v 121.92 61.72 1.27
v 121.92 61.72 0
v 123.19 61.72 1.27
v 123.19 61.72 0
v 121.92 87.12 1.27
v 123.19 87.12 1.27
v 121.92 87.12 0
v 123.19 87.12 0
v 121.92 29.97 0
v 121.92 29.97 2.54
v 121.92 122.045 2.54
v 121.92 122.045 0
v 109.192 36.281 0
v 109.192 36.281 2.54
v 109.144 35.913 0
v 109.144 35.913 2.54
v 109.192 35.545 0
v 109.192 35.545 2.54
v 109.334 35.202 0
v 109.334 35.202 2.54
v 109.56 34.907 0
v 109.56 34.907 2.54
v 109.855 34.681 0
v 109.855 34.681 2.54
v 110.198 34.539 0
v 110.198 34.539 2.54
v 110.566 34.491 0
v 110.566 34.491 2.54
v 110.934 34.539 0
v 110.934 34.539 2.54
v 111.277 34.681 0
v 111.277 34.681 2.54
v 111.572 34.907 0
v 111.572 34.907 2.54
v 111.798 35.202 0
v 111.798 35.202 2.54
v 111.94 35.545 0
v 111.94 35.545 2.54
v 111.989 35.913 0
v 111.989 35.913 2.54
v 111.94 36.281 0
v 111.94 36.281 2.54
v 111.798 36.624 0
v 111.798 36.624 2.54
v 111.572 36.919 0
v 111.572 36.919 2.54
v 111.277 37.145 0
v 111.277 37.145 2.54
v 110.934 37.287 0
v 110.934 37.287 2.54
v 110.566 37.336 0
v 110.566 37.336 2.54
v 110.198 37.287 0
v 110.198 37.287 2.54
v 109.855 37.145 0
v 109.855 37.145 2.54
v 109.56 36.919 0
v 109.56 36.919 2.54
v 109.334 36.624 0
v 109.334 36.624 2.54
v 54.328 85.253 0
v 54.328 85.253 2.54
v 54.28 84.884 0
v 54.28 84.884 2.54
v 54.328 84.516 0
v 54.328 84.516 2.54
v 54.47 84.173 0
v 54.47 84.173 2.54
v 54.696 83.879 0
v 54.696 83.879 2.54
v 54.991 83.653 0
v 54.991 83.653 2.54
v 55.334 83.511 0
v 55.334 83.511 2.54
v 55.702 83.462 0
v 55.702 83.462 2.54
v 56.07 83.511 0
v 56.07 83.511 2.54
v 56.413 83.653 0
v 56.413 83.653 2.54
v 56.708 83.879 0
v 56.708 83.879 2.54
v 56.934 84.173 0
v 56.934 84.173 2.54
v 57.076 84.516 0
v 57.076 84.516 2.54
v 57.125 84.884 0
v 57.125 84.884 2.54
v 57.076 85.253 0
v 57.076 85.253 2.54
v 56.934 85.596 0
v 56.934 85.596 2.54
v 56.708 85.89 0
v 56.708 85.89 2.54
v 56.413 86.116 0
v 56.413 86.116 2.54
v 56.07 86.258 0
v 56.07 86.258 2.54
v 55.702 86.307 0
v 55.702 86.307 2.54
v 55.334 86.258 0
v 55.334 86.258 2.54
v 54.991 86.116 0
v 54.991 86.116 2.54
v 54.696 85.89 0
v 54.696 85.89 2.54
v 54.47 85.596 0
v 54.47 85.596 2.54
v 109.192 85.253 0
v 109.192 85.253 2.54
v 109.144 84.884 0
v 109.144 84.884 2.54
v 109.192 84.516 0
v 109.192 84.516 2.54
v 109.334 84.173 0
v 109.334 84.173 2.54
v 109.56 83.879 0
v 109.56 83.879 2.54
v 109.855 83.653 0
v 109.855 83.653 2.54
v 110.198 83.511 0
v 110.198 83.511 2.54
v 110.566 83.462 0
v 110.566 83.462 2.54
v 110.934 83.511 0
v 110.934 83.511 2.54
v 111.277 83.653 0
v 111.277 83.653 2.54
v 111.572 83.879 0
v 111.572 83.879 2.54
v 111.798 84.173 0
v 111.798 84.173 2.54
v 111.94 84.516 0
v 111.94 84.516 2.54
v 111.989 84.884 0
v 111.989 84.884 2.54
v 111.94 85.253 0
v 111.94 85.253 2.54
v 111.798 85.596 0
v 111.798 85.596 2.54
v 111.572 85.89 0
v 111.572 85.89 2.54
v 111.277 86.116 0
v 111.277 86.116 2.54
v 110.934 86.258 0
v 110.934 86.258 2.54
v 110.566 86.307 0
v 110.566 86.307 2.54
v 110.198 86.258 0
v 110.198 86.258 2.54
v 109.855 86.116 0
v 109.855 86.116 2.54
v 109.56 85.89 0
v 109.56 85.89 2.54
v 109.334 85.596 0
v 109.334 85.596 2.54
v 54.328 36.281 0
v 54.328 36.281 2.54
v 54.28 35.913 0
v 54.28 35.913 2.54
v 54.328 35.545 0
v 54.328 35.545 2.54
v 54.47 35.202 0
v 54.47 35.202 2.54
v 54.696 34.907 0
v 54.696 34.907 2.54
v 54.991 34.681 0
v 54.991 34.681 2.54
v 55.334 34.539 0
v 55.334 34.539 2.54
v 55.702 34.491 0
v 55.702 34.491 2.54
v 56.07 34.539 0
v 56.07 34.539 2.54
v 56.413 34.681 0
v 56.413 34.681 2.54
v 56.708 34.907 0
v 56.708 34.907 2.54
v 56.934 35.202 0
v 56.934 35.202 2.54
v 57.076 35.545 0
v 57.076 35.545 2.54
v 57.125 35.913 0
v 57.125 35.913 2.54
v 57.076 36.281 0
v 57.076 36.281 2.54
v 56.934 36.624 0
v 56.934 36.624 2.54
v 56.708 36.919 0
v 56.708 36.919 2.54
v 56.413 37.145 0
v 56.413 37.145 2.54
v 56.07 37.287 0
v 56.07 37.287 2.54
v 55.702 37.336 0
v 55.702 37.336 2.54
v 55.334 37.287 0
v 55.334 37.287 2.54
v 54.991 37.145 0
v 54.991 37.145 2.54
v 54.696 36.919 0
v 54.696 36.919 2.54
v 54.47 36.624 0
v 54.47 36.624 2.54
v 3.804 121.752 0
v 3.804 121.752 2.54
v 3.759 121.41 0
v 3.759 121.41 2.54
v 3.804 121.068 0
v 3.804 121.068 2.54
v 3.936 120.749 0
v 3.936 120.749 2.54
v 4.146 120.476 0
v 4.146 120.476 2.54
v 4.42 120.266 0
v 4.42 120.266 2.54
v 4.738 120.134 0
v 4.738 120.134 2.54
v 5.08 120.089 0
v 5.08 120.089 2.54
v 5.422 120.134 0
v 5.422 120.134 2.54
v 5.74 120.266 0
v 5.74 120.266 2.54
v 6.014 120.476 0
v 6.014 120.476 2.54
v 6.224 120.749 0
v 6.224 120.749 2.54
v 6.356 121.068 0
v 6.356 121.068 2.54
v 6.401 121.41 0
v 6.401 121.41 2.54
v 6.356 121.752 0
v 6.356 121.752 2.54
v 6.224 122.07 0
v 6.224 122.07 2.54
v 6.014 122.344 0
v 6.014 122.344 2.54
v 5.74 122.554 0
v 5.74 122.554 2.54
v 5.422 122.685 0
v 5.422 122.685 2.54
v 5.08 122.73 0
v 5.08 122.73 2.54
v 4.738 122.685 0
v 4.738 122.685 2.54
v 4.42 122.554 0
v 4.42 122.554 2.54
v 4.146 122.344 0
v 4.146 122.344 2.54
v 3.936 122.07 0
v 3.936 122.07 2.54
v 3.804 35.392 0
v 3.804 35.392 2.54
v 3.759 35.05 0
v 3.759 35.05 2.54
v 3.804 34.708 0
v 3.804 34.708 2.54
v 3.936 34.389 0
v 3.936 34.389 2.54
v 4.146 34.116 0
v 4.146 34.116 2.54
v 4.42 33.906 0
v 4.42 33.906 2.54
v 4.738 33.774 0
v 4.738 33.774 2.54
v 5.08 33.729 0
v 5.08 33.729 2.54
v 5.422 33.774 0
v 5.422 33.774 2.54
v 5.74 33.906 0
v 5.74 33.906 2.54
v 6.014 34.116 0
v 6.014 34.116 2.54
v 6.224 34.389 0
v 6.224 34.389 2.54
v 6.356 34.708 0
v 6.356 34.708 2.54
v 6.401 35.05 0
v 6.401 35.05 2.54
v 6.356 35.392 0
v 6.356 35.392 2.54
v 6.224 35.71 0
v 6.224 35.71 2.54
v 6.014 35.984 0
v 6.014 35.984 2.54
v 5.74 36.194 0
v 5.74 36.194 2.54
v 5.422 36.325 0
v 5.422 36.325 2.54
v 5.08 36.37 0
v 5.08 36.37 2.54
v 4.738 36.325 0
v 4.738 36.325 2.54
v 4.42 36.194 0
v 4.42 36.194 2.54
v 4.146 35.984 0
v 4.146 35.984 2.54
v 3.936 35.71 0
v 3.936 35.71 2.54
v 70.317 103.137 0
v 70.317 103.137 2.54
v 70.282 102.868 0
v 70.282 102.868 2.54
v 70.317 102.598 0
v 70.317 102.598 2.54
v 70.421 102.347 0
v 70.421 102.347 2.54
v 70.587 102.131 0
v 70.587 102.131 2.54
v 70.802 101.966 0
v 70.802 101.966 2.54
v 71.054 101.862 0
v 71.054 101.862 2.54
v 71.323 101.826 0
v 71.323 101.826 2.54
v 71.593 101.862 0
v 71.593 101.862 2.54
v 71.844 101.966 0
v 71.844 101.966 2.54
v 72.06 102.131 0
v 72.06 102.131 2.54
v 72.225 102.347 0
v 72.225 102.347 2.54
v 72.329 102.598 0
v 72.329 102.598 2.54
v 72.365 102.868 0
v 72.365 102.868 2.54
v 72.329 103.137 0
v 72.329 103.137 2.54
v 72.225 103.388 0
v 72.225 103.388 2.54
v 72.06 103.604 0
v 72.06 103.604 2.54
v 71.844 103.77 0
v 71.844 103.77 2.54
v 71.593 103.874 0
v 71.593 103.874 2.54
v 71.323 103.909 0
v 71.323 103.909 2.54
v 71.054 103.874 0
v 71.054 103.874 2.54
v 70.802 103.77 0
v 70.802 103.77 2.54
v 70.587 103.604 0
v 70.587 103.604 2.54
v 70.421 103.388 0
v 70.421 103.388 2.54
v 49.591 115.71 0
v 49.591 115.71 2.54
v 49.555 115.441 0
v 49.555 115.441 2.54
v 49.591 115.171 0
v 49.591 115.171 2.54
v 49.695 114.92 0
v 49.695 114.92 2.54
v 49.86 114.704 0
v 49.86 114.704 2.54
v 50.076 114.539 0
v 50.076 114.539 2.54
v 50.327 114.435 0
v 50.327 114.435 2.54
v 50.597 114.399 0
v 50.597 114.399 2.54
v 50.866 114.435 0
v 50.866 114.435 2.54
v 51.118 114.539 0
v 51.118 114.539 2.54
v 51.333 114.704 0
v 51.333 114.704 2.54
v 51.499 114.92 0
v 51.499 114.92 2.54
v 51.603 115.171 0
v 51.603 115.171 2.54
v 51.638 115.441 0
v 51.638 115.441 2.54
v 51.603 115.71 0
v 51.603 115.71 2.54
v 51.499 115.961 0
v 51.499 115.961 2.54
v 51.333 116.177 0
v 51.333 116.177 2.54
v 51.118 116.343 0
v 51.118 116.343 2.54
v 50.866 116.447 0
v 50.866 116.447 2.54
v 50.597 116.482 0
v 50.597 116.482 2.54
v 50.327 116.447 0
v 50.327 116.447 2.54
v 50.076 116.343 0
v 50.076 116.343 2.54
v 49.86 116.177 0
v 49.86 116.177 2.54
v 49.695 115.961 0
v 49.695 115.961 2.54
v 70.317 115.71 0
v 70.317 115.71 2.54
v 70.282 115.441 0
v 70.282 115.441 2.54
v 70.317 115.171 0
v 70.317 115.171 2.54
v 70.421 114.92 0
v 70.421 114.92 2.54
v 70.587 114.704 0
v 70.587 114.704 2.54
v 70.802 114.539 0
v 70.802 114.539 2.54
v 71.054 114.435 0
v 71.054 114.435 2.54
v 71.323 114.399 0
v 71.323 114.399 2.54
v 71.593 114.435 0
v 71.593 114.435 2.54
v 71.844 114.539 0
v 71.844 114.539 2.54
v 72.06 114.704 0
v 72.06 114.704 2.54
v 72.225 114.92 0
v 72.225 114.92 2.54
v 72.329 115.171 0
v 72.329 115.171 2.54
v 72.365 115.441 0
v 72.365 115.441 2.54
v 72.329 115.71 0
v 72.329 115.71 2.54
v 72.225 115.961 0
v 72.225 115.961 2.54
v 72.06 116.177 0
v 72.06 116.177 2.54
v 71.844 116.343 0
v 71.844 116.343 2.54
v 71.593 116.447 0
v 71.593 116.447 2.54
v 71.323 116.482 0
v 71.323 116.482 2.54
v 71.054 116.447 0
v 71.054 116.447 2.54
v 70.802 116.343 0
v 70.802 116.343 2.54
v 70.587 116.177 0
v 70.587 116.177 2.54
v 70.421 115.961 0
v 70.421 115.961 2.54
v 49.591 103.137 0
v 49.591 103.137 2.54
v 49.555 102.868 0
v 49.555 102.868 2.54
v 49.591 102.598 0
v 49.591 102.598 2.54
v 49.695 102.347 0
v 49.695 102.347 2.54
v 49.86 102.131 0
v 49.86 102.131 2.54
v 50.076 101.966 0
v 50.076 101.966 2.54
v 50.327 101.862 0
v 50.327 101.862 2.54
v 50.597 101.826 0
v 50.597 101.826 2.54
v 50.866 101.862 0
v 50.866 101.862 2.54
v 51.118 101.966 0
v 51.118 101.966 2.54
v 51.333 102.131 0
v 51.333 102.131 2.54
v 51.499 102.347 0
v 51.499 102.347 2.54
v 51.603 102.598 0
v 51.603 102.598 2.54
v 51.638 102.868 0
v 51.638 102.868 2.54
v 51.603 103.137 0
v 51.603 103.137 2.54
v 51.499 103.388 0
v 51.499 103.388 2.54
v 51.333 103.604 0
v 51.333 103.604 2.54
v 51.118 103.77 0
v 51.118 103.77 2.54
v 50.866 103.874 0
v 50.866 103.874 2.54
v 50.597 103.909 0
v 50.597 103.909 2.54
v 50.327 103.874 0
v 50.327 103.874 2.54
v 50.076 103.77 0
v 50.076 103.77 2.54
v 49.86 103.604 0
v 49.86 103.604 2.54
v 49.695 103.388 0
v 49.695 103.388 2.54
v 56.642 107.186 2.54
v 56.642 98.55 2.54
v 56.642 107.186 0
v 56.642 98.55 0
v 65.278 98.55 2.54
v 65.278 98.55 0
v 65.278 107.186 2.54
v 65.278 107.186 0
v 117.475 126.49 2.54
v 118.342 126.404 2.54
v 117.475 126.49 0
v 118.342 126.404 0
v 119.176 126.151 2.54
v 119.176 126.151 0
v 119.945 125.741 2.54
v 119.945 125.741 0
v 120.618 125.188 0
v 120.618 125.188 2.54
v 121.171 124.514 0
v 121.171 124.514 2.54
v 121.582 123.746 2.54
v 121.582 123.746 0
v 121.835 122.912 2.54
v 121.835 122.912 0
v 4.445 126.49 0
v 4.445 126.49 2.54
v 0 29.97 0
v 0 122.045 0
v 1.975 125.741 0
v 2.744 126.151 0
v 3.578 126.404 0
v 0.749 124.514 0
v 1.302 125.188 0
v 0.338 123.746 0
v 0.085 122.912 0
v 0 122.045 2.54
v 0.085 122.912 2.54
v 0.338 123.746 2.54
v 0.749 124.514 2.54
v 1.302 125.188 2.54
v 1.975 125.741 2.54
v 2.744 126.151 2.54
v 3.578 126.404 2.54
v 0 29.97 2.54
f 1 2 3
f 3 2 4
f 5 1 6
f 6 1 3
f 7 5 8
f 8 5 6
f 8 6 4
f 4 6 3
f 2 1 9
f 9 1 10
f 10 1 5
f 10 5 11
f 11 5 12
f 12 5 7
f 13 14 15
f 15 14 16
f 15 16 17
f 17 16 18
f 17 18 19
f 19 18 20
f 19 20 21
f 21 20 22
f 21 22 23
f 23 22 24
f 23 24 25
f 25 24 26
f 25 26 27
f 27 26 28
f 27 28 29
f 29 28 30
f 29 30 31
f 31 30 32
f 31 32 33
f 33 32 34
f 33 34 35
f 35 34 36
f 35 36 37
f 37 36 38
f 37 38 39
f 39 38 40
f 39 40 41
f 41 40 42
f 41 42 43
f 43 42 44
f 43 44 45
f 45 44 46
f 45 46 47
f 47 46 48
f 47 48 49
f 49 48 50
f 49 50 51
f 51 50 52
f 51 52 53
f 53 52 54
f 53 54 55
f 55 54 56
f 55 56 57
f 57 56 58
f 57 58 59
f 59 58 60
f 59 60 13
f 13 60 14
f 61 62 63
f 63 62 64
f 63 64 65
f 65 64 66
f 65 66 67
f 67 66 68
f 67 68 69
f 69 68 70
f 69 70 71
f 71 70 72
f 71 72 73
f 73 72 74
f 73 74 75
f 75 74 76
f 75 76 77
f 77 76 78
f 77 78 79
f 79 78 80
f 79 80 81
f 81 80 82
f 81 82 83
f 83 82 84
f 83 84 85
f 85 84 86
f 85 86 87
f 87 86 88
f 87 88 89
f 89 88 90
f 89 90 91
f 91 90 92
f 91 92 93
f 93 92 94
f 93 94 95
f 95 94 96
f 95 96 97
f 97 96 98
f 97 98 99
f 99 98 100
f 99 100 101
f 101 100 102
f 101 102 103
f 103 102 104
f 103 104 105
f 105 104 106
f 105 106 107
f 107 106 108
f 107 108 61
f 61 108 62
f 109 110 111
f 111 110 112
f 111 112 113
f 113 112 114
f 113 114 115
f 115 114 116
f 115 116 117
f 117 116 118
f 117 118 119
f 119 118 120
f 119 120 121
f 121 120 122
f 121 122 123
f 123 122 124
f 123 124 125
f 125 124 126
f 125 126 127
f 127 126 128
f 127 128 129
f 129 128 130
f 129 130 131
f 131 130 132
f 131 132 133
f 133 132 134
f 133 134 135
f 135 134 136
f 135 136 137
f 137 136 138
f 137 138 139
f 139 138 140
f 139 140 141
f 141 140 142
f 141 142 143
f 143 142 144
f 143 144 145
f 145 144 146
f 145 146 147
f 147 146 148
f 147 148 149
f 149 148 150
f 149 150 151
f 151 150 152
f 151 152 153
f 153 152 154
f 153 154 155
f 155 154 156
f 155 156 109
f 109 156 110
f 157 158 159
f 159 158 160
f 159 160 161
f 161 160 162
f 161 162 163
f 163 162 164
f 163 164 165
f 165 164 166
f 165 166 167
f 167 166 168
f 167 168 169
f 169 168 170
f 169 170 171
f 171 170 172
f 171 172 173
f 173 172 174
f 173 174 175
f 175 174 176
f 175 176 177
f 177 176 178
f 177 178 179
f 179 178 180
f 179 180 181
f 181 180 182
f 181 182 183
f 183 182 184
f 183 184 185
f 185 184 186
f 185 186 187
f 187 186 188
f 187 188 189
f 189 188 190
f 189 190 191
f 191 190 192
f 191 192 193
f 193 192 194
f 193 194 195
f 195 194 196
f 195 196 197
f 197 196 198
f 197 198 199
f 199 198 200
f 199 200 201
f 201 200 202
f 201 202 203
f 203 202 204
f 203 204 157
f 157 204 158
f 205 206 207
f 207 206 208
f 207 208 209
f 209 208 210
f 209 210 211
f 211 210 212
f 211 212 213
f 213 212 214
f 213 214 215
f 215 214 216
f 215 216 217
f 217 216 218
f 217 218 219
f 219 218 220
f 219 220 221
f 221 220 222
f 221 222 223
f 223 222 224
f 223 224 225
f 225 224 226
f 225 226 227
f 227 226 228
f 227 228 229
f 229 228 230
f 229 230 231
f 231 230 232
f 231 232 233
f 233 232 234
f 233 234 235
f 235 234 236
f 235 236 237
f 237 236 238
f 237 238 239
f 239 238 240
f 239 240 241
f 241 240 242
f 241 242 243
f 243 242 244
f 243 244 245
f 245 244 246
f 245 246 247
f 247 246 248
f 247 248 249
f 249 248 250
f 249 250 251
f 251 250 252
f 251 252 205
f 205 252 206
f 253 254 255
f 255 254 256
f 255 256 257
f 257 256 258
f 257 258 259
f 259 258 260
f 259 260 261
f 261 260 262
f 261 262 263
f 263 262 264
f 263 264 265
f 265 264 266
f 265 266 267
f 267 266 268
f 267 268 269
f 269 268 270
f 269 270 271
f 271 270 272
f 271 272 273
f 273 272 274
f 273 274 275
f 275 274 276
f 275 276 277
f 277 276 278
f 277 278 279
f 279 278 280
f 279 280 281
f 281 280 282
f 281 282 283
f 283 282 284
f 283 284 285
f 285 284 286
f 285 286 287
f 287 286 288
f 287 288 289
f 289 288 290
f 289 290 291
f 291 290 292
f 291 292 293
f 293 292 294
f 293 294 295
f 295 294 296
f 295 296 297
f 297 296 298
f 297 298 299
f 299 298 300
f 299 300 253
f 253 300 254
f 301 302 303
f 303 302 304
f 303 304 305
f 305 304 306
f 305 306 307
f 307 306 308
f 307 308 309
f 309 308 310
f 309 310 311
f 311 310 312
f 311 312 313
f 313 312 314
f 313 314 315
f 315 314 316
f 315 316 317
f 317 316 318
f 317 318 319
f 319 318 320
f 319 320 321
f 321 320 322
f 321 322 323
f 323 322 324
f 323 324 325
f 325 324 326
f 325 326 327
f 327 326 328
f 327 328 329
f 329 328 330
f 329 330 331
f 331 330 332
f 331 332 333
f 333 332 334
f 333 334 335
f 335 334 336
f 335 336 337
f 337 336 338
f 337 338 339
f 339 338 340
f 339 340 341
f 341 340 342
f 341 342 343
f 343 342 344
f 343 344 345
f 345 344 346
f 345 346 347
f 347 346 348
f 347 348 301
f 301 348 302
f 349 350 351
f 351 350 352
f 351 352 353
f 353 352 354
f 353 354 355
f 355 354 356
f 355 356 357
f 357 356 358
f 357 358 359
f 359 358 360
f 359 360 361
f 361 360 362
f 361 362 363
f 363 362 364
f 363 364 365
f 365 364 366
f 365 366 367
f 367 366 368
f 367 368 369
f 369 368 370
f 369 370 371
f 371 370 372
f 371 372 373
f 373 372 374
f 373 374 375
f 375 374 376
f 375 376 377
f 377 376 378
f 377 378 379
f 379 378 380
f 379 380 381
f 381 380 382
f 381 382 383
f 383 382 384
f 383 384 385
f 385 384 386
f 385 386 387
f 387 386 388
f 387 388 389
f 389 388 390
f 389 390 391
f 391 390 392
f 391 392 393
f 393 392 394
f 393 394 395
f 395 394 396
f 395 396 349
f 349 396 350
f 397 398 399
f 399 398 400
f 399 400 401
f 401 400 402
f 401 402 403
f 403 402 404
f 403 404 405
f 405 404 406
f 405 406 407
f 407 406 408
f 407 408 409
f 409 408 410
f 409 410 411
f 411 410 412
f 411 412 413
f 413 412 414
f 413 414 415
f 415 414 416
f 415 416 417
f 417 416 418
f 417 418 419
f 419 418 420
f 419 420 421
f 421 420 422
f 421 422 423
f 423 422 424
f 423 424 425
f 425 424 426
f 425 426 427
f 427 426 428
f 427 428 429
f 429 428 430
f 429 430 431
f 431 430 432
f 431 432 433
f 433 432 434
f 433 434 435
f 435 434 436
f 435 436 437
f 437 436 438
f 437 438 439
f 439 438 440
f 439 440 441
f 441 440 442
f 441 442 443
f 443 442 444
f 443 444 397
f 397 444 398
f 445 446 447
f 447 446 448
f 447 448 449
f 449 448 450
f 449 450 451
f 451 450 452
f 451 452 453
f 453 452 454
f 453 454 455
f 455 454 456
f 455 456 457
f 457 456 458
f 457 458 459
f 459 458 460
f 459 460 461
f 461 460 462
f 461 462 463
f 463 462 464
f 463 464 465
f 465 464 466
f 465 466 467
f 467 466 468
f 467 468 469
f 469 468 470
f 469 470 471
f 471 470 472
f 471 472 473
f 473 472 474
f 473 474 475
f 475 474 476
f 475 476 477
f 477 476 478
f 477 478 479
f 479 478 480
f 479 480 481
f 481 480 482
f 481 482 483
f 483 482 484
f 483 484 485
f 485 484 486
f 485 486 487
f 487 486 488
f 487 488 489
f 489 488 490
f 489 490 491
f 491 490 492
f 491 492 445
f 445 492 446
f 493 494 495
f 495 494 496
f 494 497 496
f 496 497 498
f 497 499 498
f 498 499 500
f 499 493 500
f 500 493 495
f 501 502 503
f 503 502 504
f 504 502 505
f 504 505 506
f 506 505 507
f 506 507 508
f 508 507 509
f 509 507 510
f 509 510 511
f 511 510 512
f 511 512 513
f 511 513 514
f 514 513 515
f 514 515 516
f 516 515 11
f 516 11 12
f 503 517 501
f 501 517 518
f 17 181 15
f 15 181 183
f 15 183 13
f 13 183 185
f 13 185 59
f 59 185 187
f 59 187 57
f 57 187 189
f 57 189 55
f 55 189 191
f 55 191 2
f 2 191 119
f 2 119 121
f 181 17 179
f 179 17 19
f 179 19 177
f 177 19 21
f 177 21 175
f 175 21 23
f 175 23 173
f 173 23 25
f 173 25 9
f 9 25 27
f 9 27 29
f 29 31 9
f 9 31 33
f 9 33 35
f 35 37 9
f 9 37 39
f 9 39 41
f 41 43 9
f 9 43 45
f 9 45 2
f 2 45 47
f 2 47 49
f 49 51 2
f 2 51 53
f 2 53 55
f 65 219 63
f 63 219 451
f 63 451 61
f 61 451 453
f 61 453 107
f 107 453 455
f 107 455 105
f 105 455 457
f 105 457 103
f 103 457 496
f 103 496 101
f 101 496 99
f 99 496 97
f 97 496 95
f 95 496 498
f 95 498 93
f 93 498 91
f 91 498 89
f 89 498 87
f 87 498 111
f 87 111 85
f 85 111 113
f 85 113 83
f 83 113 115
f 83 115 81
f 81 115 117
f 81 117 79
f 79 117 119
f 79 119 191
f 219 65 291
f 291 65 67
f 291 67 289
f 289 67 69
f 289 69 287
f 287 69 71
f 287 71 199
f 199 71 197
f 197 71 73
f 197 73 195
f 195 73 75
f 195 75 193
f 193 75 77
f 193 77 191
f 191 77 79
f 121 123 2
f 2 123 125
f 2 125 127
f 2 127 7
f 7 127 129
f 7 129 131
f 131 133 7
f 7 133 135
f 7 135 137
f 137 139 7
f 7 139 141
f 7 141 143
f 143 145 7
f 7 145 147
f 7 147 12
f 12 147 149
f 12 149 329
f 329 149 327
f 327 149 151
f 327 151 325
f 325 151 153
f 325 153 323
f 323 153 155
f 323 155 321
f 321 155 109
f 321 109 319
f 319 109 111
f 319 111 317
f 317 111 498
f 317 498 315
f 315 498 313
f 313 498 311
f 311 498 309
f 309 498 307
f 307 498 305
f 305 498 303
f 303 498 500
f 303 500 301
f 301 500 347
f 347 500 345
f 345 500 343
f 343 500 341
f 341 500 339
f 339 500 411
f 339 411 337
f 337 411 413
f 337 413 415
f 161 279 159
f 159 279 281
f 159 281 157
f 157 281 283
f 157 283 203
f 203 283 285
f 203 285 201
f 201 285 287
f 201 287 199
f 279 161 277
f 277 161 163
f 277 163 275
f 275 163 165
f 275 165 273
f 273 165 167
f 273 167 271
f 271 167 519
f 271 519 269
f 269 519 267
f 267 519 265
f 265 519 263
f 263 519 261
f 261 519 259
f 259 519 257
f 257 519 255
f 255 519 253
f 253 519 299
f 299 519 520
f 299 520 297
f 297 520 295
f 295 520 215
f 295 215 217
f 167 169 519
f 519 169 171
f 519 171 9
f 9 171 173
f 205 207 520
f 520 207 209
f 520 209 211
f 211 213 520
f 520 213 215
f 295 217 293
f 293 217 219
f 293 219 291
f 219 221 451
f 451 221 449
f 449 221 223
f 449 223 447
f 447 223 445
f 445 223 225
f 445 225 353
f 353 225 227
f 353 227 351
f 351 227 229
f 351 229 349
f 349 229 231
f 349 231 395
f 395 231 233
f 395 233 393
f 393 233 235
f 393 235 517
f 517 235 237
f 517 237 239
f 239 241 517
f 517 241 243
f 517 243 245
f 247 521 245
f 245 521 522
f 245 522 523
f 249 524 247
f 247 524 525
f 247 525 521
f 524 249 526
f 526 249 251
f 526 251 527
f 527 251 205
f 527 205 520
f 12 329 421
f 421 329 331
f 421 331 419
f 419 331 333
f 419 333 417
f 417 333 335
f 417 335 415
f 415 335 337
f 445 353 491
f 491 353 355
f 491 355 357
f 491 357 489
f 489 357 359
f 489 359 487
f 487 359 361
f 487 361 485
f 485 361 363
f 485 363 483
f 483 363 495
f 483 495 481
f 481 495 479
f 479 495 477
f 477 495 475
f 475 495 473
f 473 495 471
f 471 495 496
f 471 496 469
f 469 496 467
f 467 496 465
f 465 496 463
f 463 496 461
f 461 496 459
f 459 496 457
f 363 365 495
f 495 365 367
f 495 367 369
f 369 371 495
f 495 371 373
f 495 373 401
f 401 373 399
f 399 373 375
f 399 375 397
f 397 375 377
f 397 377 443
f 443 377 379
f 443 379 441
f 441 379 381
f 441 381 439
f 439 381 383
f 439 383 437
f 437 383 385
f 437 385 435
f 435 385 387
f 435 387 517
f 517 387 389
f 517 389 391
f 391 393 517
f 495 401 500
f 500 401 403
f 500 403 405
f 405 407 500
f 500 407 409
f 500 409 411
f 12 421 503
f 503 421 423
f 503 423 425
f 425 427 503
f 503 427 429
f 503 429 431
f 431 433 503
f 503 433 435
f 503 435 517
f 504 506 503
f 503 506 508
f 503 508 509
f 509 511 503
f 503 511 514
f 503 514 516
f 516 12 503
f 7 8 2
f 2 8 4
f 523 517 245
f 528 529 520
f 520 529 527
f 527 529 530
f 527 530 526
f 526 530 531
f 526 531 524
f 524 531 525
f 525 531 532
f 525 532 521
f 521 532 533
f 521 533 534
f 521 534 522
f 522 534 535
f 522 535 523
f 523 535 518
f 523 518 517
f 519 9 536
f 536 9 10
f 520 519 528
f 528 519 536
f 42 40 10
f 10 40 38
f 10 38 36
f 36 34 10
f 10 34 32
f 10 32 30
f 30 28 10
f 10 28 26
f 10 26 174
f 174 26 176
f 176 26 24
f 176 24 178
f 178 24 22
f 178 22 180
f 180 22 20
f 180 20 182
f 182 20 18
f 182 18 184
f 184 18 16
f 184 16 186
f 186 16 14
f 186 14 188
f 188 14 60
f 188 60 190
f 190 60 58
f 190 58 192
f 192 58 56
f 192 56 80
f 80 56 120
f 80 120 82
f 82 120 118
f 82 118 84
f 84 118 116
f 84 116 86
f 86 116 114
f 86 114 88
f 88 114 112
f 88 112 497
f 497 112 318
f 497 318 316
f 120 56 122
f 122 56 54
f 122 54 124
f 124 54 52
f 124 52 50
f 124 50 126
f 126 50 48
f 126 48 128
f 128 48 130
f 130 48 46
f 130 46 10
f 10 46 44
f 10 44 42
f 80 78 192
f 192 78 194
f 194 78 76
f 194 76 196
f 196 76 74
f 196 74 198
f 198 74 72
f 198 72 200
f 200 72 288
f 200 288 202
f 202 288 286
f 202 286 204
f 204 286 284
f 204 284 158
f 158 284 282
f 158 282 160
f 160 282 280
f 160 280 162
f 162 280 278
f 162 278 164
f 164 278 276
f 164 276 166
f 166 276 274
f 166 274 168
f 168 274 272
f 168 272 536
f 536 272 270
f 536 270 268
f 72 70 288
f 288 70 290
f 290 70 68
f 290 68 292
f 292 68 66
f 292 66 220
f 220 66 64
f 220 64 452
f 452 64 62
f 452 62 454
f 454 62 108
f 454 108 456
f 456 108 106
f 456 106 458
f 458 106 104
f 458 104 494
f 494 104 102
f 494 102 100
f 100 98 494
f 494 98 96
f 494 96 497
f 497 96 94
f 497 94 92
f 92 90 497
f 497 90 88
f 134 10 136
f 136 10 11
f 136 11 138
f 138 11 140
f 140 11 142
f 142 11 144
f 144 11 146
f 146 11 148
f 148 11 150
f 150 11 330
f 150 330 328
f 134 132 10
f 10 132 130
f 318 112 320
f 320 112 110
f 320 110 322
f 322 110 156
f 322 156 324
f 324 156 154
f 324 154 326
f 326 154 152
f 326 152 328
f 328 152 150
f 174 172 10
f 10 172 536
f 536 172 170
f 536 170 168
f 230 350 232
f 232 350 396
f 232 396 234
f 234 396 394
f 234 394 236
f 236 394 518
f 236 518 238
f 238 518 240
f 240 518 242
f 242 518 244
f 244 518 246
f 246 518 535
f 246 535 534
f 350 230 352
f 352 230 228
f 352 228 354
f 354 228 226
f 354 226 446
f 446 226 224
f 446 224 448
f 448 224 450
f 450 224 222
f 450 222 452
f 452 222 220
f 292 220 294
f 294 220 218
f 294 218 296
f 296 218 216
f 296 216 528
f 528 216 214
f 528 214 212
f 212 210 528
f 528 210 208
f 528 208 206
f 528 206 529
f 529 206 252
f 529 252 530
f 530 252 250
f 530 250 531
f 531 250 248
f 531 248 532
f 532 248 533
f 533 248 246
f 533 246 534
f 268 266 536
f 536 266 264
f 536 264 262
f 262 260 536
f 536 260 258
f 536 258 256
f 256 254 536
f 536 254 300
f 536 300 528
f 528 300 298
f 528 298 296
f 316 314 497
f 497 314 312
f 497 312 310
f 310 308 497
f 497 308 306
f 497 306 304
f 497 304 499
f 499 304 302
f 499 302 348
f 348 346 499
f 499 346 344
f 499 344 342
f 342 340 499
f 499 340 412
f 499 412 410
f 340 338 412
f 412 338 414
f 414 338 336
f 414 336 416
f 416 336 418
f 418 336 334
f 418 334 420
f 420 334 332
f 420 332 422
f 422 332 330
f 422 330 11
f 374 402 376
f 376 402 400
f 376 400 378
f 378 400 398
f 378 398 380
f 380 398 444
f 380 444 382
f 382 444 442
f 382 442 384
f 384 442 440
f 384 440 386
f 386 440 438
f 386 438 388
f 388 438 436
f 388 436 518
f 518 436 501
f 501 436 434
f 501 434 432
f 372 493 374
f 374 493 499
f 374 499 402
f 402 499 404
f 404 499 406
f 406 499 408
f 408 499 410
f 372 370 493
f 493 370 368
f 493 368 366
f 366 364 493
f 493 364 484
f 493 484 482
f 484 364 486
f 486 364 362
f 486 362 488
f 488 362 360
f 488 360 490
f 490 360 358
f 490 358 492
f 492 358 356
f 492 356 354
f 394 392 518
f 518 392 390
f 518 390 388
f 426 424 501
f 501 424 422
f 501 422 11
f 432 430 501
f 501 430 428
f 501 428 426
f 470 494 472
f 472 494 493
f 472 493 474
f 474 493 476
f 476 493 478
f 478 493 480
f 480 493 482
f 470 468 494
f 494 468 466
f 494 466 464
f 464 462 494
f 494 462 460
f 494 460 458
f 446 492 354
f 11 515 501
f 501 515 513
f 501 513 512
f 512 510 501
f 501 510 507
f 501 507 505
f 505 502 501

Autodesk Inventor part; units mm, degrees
ref_plane "YZ Plane" through (0, 0, 0) normal (1, 0, 0) x (0, 1, 0)
ref_plane "XZ Plane" through (0, 0, 0) normal (0, 1, 0) x (-1, 0, 0)
ref_plane "XY Plane" through (0, 0, 0) normal (0, 0, 1) x (1, 0, 0)
sketch "Sketch1" plane through (0, 0, 0) normal (0, 0, 1) x (1, 0, 0)
  line L0 (0, 126.4897) -> (121.92, 126.4897)
  line L1 (121.92, 126.4897) -> (121.92, 29.9697)
  line L2 (121.92, 29.9697) -> (0, 29.9697)
  line L3 (0, 29.9697) -> (0, 126.4897)
  point P0 (0, 0)
  dimension "d0" = 96.52
  dimension "d1" = 121.92
extrude "Extrusion1" add sketch "Sketch1" along normal blind 2.54
fillet "Fillet1" radius 4.445 1 edges at (0, 126.4897, 1.27)
fillet "Fillet2" radius 4.445 1 edges at (121.92, 126.4897, 1.27)
sketch "Sketch2" plane through (0, 0, 2.54) normal (0, 0, 1) x (1, 0, 0)
  line L0 (56.642, 107.1857) -> (65.278, 107.1857)
  line L1 (65.278, 107.1857) -> (65.278, 98.5497)
  line L2 (65.278, 98.5497) -> (56.642, 98.5497)
  line L3 (56.642, 98.5497) -> (56.642, 107.1857)
  line L4 (121.92, 29.9697) -> (121.92, 122.0447) projected
  line L5 (0, 29.9697) -> (121.92, 29.9697) projected
  point P0 (0, 0)
  dimension "d6" = 8.636
  dimension "d7" = 8.636
  dimension "d8" = 56.642
  dimension "d9" = 68.58
extrude "Extrusion2" cut sketch "Sketch2" against normal blind 2.54
sketch "Sketch3" plane through (0, 0, 2.54) normal (0, 0, 1) x (1, 0, 0)
  line L0 (56.642, 98.5497) -> (56.642, 107.1857) projected
  line L1 (65.278, 107.1857) -> (65.278, 98.5497) projected
  line L2 (56.642, 107.1857) -> (65.278, 107.1857) projected
  point P0 (0, 0)
  point P1 (50.5968, 102.8677)
  point P2 (50.5968, 115.4407)
  point P3 (71.3232, 115.4407)
  point P4 (71.3232, 102.8677)
  dimension "d12" = 6.0452
  dimension "d13" = 6.0452
  dimension "d14" = 12.573
  dimension "d15" = 6.0452
  dimension "d16" = 6.0452
  dimension "d17" = 12.573
  dimension "d27" = 4.318
  dimension "d28" = 4.318
hole "Hole1" at (50.5968, 115.4407, 2.54) at (71.3232, 115.4407, 2.54) at (71.3232, 102.8677, 2.54) at (50.5968, 102.8677, 2.54) direction (0, 0, -1) diameter 2.0828 end through all
sketch "Sketch4" plane through (0, 0, 2.54) normal (0, 0, 1) x (1, 0, 0)
  line L0 (117.475, 126.4897) -> (4.445, 126.4897) projected
  line L1 (0, 122.0447) -> (0, 29.9697) projected
  line L2 (0, 29.9697) -> (121.92, 29.9697) projected
  point P0 (0, 0)
  point P1 (5.08, 121.4097)
  point P2 (5.08, 35.0497)
  dimension "d29" = 5.08
  dimension "d30" = 5.08
  dimension "d31" = 5.08
  dimension "d32" = 5.08
hole "Hole2" at (5.08, 121.4097, 2.54) at (5.08, 35.0497, 2.54) direction (0, 0, -1) diameter 2.6416 end through all
sketch "Sketch5" plane through (0, 0, 2.54) normal (0, 0, 1) x (1, 0, 0)
  line L0 (52.2478, 88.3389) -> (114.0206, 88.3389)
  line L1 (114.0206, 88.3389) -> (114.0206, 32.4589)
  line L2 (114.0206, 32.4589) -> (52.2478, 32.4589)
  line L3 (52.2478, 32.4589) -> (52.2478, 88.3389)
  line L4 (0, 29.9697) -> (121.92, 29.9697) projected
  line L5 (121.92, 29.9697) -> (121.92, 122.0447) projected
  point P0 (0, 0)
  point P1 (55.7022, 84.8845)
  point P2 (110.5662, 84.8845)
  point P3 (110.5662, 35.9133)
  point P4 (55.7022, 35.9133)
  dimension "d40" = 55.88
  dimension "d41" = 61.7728
  dimension "d42" = 3.4544
  dimension "d43" = 3.4544
  dimension "d44" = 3.4544
  dimension "d45" = 3.4544
  dimension "d46" = 3.4544
  dimension "d47" = 3.4544
  dimension "d48" = 3.4544
  dimension "d49" = 3.4544
  dimension "d50" = 2.4892
  dimension "d51" = 7.8994
hole "Hole3" at (55.7022, 84.8845, 2.54) at (110.5662, 84.8845, 2.54) at (110.5662, 35.9133, 2.54) at (55.7022, 35.9133, 2.54) direction (0, 0, -1) diameter 2.8448 end through all
sketch "Sketch6" plane through (121.92, 29.9697, 2.54) normal (1, 0, 0) x (0, 0, -1)
  line L0 (1.27, 57.15) -> (2.54, 57.15)
  line L1 (2.54, 57.15) -> (2.54, 31.75)
  line L2 (2.54, 31.75) -> (1.27, 31.75)
  line L3 (1.27, 31.75) -> (1.27, 57.15)
  line L4 (2.54, 0) -> (0, 0) projected
  line L5 (0, 0) -> (0, 92.075) projected
  point P0 (2.54, -29.9697)
  dimension "d59" = 25.4
  dimension "d60" = 31.75
  dimension "d61" = 1.27
  dimension "d62" = 1.27
extrude "Extrusion3" add sketch "Sketch6" along normal blind 1.27
properties part number "justlid"
